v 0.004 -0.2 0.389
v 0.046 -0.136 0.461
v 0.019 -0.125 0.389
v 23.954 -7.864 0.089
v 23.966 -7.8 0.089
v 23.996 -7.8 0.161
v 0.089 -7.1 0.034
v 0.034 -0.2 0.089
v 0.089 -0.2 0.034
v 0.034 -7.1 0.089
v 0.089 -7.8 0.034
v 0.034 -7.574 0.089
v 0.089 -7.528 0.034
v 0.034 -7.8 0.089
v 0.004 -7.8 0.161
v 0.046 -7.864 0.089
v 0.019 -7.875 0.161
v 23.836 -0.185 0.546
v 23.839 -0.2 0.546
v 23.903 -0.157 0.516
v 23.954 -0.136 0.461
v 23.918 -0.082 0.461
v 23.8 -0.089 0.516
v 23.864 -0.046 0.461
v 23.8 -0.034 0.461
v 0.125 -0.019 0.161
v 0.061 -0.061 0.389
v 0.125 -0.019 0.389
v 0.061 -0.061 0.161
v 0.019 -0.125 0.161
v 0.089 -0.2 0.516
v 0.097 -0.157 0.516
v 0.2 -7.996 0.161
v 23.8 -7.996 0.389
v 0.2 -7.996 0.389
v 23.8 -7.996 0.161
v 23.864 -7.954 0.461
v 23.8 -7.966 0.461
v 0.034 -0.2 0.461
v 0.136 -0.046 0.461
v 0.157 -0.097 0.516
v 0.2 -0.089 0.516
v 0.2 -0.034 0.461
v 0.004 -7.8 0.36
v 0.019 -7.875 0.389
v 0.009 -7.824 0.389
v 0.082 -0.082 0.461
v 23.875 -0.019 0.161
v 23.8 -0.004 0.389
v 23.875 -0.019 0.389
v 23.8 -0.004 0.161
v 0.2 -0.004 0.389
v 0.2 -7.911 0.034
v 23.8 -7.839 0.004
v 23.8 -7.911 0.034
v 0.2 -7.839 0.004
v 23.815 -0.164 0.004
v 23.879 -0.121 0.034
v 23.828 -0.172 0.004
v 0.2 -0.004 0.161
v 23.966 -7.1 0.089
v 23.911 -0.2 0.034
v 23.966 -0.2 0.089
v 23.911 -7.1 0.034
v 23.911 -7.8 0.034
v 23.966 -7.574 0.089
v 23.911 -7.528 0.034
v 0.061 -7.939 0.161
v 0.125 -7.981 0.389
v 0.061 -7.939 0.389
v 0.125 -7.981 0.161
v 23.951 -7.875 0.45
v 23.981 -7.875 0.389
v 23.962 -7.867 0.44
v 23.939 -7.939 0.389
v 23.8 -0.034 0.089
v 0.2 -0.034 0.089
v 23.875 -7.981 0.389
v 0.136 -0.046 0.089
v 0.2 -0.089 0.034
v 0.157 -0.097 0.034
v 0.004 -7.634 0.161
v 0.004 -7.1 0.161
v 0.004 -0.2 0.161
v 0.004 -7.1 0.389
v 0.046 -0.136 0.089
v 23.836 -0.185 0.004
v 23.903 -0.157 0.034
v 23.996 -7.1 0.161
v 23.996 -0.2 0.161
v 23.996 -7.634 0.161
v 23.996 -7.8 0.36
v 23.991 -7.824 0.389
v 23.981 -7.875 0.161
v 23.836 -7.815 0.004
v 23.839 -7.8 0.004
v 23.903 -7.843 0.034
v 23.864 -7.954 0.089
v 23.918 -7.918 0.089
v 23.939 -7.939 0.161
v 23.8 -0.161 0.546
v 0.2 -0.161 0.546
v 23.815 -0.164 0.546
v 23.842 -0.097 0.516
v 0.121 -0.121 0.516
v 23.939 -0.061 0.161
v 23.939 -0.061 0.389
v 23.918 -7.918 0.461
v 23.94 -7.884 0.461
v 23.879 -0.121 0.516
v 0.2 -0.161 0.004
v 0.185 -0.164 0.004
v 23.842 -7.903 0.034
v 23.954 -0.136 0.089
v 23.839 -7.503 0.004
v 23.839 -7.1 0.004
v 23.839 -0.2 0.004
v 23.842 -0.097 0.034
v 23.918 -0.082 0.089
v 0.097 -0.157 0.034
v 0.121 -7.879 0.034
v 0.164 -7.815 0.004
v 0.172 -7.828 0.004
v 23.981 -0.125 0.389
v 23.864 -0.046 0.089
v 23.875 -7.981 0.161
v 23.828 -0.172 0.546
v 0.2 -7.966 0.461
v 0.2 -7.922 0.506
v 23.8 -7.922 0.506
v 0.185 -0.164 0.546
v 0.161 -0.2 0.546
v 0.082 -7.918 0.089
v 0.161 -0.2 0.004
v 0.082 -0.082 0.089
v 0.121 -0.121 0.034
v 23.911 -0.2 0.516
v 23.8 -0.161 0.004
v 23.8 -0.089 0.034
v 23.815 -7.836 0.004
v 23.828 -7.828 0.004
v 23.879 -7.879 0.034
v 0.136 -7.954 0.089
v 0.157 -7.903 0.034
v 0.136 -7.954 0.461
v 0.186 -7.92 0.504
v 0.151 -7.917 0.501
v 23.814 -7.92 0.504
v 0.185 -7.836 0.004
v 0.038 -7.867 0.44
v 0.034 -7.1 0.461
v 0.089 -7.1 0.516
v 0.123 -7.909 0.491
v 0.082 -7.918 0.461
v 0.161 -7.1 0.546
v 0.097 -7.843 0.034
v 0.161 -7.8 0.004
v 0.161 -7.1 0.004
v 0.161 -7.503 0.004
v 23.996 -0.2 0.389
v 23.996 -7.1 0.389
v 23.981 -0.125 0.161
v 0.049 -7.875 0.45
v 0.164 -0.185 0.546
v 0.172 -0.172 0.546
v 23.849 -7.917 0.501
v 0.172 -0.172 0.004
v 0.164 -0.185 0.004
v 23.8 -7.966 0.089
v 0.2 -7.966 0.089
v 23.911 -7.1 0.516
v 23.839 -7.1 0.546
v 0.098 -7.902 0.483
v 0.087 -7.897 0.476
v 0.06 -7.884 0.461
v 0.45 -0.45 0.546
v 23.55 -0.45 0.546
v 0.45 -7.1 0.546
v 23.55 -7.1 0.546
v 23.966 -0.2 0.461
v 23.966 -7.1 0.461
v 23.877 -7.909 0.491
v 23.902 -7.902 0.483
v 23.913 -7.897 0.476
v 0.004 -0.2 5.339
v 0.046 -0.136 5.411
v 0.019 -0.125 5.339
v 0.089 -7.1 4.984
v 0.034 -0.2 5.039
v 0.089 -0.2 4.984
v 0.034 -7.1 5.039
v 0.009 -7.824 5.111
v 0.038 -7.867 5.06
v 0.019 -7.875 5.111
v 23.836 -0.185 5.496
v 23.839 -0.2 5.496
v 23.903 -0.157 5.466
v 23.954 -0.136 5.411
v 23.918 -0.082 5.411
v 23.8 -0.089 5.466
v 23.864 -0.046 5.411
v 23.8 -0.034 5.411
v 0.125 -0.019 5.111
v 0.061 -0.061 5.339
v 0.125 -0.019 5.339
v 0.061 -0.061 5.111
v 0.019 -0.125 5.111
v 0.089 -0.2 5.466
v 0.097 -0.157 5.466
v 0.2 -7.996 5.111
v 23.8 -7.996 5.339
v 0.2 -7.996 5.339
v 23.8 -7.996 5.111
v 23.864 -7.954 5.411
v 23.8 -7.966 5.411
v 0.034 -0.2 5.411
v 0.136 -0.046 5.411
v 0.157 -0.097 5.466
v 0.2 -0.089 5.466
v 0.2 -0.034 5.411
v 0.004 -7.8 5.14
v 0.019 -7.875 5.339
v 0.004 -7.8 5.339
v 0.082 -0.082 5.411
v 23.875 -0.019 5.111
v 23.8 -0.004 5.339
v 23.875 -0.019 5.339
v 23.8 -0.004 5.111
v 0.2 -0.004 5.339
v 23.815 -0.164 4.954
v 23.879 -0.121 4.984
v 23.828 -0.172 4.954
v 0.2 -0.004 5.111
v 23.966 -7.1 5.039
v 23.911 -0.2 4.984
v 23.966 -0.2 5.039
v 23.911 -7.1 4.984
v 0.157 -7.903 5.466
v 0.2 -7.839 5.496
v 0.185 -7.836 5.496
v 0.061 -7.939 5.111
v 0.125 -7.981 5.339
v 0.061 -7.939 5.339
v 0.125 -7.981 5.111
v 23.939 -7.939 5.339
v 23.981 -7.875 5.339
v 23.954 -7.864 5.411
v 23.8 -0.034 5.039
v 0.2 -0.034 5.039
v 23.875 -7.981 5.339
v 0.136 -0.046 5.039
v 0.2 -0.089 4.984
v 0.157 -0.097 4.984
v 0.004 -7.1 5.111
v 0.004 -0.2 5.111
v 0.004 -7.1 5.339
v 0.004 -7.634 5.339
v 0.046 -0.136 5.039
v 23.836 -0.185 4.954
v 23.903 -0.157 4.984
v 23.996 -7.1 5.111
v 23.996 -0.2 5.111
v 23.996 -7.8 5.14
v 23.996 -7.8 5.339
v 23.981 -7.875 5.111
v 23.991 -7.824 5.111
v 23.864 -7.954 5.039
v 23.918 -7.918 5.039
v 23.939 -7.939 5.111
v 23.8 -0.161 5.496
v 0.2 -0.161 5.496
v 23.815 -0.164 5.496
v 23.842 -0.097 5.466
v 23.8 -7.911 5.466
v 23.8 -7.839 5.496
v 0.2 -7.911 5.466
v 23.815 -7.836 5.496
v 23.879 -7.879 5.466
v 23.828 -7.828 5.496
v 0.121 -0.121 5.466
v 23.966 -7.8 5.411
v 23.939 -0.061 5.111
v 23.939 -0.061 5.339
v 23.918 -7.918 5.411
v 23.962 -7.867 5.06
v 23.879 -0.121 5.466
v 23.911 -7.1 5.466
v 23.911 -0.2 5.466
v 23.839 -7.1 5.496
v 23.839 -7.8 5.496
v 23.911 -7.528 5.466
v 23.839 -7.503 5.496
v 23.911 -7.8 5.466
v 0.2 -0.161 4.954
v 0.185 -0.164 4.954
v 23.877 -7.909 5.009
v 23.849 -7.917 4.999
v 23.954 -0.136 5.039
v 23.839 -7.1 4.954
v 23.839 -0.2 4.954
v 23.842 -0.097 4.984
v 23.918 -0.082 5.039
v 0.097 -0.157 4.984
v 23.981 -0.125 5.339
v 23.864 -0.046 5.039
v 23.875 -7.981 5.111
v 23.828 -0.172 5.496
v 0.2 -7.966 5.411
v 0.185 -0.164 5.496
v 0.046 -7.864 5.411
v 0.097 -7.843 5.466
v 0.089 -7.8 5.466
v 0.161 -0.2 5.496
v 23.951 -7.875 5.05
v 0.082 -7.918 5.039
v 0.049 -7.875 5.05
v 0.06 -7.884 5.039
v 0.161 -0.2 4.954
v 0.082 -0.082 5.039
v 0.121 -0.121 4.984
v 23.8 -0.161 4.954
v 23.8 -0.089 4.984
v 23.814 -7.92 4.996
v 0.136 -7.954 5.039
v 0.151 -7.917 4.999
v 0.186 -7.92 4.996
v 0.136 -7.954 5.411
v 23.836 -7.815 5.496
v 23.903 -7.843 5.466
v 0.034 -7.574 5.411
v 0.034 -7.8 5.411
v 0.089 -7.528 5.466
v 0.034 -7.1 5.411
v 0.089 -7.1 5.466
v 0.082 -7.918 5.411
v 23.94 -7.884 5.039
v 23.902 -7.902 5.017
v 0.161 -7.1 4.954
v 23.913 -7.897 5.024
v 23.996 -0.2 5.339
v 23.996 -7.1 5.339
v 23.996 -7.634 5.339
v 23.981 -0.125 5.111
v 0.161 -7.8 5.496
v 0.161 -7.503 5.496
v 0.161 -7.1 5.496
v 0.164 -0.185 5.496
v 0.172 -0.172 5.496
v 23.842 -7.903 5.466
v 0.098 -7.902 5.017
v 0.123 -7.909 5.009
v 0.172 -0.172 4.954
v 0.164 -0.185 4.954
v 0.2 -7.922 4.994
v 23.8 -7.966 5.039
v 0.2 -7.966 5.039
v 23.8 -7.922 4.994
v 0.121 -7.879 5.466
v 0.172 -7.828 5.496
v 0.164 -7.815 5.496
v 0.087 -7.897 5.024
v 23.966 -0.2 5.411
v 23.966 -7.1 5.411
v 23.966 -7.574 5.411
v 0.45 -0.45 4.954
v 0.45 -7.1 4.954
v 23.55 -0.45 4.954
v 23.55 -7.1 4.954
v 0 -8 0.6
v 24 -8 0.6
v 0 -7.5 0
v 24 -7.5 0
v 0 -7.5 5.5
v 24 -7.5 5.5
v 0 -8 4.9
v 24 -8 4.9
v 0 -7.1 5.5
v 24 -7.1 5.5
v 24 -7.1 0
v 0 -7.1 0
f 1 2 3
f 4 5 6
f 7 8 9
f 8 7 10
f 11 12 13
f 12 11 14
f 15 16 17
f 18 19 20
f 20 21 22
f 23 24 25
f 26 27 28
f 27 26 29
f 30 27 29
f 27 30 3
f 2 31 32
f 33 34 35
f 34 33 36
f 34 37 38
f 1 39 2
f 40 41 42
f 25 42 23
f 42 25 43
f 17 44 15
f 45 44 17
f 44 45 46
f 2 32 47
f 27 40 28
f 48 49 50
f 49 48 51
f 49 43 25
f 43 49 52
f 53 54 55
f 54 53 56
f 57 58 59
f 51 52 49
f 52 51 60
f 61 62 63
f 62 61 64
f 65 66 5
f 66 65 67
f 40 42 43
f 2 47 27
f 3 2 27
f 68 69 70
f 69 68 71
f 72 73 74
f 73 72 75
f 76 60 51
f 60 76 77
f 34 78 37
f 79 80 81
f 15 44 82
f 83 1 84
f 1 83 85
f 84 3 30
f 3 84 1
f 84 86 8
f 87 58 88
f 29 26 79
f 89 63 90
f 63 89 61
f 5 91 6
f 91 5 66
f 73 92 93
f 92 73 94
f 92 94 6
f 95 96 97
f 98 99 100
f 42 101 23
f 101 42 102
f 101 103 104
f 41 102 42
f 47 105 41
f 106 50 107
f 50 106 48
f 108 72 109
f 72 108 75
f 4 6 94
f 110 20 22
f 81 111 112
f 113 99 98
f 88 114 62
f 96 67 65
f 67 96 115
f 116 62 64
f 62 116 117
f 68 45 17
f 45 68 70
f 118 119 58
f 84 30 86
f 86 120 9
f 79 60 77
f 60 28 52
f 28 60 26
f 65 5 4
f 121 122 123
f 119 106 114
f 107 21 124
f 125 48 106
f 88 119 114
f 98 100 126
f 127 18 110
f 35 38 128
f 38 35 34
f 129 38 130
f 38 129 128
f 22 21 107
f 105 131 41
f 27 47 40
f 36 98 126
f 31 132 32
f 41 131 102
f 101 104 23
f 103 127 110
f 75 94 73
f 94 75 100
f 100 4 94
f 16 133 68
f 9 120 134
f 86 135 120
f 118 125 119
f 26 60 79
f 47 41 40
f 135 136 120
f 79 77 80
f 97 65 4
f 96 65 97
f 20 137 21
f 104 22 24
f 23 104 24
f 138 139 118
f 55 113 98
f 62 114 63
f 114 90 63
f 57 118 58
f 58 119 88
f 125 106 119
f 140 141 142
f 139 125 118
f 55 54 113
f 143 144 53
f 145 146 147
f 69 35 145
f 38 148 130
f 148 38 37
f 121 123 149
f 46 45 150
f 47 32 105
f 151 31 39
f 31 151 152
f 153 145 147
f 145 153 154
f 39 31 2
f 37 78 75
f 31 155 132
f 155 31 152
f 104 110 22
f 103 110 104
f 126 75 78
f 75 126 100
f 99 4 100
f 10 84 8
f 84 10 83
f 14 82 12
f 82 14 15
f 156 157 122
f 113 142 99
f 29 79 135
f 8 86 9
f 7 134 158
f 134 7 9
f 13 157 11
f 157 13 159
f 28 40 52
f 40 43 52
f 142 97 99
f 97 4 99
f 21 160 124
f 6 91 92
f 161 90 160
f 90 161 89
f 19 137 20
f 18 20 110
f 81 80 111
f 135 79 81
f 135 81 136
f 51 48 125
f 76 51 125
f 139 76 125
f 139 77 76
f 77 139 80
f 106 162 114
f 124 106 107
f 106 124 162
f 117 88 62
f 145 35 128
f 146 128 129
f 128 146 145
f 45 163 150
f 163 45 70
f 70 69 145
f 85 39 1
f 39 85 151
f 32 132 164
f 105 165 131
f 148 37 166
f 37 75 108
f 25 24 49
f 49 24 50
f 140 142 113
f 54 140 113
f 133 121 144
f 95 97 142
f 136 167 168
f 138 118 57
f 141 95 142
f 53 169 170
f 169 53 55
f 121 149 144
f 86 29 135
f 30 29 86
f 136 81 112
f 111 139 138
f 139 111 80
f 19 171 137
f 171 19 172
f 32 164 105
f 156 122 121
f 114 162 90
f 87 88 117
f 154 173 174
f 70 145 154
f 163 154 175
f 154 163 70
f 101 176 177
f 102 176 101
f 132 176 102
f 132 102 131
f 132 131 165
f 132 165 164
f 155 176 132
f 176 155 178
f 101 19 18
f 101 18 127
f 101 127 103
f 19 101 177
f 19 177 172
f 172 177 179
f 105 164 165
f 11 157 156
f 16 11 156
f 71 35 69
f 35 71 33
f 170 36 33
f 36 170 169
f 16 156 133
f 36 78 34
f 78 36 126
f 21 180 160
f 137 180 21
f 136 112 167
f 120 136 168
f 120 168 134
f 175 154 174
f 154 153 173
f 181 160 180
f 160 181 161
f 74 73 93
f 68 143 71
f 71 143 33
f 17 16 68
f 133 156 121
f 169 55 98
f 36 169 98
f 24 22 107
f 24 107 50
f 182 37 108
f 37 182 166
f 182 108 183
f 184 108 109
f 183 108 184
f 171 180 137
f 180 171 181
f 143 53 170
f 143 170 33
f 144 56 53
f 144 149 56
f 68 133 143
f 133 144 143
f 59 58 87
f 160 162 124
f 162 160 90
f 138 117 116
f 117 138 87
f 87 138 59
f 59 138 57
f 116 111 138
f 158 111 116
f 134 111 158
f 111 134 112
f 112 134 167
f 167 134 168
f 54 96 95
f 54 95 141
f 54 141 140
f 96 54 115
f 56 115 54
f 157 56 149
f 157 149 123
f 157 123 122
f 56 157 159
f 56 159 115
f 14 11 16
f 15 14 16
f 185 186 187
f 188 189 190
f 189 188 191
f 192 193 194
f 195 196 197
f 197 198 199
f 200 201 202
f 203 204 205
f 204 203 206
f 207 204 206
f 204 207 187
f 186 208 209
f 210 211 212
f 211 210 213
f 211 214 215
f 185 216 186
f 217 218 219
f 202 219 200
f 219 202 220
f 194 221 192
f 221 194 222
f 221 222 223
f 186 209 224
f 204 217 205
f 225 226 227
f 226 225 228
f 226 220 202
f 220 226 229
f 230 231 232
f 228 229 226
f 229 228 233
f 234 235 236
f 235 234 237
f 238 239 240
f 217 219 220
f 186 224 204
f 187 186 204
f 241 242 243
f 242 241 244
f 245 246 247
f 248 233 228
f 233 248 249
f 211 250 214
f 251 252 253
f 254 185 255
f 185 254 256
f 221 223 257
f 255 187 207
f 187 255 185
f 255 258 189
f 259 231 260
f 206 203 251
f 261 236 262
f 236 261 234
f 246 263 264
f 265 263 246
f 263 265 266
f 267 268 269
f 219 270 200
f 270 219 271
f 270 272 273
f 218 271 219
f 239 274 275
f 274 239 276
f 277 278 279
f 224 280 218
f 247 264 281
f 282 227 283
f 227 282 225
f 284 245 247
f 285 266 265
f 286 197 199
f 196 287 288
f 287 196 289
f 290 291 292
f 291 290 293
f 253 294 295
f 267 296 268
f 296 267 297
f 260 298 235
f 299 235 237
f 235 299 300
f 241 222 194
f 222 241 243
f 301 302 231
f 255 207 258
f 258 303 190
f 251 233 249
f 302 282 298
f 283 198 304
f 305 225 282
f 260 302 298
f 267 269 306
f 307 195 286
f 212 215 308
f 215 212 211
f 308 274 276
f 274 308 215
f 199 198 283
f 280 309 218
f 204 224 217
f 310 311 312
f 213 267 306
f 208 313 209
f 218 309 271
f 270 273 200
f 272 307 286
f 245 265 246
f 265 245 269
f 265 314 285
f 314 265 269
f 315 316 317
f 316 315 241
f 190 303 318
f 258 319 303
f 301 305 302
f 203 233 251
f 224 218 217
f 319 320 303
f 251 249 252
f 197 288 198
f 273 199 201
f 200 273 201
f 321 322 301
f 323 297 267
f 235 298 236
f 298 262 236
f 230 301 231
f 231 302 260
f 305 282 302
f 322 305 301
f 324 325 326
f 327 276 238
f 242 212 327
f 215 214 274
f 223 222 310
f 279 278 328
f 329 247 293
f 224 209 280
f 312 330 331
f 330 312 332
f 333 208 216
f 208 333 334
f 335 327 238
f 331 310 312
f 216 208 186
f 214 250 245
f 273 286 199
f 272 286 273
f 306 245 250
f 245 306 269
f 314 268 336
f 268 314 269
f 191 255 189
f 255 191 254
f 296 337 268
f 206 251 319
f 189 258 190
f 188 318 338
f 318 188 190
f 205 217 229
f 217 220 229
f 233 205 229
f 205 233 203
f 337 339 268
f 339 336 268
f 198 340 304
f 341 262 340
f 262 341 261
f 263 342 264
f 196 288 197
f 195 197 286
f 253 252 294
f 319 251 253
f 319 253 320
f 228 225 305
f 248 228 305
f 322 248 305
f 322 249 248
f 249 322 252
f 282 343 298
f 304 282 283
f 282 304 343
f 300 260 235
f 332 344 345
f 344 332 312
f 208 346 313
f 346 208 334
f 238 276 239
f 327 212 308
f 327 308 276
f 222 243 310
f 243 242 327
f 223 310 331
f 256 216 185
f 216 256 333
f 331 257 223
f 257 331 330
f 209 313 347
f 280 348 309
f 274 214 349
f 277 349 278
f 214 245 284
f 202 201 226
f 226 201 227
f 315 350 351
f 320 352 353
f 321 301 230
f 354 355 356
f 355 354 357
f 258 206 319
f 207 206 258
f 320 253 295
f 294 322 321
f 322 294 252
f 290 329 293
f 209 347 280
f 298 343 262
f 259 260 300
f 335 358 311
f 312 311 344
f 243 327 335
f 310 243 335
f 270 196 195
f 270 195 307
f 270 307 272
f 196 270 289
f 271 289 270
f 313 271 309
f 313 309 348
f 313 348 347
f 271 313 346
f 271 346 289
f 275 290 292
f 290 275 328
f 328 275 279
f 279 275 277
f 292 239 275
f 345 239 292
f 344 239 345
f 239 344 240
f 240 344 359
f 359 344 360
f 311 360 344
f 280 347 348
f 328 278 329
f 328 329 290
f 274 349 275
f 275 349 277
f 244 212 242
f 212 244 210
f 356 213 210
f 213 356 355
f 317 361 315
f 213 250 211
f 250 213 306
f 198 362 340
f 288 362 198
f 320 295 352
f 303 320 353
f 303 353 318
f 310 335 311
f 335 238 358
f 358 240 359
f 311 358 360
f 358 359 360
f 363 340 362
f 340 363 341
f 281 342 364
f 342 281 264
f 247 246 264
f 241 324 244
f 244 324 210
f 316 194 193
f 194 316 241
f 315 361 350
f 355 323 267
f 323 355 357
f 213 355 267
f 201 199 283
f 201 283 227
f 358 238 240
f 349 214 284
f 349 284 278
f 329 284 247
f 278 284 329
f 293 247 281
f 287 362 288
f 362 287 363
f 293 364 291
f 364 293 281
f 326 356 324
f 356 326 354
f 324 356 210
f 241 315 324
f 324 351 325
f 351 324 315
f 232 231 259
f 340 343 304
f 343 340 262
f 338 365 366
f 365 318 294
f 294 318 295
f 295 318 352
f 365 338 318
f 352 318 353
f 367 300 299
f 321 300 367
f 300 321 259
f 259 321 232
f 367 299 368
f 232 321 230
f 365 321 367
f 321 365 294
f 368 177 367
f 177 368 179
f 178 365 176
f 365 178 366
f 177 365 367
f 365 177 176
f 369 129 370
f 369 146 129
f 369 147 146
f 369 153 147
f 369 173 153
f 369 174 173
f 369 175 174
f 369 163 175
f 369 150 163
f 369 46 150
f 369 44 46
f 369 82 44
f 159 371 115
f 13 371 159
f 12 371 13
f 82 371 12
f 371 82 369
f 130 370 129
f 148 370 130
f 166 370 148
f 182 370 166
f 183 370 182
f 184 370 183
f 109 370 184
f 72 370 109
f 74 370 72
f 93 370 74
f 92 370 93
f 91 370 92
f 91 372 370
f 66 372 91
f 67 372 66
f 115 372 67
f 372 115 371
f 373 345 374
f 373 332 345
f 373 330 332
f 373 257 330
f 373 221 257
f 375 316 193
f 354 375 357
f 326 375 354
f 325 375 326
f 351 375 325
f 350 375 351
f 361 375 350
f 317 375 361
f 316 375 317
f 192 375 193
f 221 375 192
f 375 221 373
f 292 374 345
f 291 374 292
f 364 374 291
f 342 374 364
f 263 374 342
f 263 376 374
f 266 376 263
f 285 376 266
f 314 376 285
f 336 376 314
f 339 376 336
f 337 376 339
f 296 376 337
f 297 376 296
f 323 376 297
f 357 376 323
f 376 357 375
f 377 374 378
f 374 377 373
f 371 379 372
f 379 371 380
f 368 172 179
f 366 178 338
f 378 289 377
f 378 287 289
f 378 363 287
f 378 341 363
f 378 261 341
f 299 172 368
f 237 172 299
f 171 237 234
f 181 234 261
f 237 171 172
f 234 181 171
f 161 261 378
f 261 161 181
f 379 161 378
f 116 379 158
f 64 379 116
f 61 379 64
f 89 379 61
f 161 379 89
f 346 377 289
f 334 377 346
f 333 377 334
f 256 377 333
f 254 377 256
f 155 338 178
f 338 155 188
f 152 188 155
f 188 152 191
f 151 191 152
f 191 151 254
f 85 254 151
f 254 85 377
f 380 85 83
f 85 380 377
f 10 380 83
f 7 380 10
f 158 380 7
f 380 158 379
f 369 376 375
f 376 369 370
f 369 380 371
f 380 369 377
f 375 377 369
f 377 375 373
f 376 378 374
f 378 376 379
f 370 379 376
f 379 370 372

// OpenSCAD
// Book_01.stl  -  Store Versile room frame (Rev C)
// Quantity: 2   Filament: White (e.g. PLA Basic Jade White / Matte Ivory White)
// Print: layer 0.12 mm, infill 20%, 2 walls, brim 0 mm, NO supports
// Orientation: flat  (as installed)
// Notes: Spine label = printed paper.
// The library draws parts with their front toward +Y; mirror([0,1,0]) makes the real
// part face the viewer correctly (see build.py). Edit dimensions in versile_parts.scad.
use <../versile_parts.scad>

mirror([0, 1, 0]) book_01();
